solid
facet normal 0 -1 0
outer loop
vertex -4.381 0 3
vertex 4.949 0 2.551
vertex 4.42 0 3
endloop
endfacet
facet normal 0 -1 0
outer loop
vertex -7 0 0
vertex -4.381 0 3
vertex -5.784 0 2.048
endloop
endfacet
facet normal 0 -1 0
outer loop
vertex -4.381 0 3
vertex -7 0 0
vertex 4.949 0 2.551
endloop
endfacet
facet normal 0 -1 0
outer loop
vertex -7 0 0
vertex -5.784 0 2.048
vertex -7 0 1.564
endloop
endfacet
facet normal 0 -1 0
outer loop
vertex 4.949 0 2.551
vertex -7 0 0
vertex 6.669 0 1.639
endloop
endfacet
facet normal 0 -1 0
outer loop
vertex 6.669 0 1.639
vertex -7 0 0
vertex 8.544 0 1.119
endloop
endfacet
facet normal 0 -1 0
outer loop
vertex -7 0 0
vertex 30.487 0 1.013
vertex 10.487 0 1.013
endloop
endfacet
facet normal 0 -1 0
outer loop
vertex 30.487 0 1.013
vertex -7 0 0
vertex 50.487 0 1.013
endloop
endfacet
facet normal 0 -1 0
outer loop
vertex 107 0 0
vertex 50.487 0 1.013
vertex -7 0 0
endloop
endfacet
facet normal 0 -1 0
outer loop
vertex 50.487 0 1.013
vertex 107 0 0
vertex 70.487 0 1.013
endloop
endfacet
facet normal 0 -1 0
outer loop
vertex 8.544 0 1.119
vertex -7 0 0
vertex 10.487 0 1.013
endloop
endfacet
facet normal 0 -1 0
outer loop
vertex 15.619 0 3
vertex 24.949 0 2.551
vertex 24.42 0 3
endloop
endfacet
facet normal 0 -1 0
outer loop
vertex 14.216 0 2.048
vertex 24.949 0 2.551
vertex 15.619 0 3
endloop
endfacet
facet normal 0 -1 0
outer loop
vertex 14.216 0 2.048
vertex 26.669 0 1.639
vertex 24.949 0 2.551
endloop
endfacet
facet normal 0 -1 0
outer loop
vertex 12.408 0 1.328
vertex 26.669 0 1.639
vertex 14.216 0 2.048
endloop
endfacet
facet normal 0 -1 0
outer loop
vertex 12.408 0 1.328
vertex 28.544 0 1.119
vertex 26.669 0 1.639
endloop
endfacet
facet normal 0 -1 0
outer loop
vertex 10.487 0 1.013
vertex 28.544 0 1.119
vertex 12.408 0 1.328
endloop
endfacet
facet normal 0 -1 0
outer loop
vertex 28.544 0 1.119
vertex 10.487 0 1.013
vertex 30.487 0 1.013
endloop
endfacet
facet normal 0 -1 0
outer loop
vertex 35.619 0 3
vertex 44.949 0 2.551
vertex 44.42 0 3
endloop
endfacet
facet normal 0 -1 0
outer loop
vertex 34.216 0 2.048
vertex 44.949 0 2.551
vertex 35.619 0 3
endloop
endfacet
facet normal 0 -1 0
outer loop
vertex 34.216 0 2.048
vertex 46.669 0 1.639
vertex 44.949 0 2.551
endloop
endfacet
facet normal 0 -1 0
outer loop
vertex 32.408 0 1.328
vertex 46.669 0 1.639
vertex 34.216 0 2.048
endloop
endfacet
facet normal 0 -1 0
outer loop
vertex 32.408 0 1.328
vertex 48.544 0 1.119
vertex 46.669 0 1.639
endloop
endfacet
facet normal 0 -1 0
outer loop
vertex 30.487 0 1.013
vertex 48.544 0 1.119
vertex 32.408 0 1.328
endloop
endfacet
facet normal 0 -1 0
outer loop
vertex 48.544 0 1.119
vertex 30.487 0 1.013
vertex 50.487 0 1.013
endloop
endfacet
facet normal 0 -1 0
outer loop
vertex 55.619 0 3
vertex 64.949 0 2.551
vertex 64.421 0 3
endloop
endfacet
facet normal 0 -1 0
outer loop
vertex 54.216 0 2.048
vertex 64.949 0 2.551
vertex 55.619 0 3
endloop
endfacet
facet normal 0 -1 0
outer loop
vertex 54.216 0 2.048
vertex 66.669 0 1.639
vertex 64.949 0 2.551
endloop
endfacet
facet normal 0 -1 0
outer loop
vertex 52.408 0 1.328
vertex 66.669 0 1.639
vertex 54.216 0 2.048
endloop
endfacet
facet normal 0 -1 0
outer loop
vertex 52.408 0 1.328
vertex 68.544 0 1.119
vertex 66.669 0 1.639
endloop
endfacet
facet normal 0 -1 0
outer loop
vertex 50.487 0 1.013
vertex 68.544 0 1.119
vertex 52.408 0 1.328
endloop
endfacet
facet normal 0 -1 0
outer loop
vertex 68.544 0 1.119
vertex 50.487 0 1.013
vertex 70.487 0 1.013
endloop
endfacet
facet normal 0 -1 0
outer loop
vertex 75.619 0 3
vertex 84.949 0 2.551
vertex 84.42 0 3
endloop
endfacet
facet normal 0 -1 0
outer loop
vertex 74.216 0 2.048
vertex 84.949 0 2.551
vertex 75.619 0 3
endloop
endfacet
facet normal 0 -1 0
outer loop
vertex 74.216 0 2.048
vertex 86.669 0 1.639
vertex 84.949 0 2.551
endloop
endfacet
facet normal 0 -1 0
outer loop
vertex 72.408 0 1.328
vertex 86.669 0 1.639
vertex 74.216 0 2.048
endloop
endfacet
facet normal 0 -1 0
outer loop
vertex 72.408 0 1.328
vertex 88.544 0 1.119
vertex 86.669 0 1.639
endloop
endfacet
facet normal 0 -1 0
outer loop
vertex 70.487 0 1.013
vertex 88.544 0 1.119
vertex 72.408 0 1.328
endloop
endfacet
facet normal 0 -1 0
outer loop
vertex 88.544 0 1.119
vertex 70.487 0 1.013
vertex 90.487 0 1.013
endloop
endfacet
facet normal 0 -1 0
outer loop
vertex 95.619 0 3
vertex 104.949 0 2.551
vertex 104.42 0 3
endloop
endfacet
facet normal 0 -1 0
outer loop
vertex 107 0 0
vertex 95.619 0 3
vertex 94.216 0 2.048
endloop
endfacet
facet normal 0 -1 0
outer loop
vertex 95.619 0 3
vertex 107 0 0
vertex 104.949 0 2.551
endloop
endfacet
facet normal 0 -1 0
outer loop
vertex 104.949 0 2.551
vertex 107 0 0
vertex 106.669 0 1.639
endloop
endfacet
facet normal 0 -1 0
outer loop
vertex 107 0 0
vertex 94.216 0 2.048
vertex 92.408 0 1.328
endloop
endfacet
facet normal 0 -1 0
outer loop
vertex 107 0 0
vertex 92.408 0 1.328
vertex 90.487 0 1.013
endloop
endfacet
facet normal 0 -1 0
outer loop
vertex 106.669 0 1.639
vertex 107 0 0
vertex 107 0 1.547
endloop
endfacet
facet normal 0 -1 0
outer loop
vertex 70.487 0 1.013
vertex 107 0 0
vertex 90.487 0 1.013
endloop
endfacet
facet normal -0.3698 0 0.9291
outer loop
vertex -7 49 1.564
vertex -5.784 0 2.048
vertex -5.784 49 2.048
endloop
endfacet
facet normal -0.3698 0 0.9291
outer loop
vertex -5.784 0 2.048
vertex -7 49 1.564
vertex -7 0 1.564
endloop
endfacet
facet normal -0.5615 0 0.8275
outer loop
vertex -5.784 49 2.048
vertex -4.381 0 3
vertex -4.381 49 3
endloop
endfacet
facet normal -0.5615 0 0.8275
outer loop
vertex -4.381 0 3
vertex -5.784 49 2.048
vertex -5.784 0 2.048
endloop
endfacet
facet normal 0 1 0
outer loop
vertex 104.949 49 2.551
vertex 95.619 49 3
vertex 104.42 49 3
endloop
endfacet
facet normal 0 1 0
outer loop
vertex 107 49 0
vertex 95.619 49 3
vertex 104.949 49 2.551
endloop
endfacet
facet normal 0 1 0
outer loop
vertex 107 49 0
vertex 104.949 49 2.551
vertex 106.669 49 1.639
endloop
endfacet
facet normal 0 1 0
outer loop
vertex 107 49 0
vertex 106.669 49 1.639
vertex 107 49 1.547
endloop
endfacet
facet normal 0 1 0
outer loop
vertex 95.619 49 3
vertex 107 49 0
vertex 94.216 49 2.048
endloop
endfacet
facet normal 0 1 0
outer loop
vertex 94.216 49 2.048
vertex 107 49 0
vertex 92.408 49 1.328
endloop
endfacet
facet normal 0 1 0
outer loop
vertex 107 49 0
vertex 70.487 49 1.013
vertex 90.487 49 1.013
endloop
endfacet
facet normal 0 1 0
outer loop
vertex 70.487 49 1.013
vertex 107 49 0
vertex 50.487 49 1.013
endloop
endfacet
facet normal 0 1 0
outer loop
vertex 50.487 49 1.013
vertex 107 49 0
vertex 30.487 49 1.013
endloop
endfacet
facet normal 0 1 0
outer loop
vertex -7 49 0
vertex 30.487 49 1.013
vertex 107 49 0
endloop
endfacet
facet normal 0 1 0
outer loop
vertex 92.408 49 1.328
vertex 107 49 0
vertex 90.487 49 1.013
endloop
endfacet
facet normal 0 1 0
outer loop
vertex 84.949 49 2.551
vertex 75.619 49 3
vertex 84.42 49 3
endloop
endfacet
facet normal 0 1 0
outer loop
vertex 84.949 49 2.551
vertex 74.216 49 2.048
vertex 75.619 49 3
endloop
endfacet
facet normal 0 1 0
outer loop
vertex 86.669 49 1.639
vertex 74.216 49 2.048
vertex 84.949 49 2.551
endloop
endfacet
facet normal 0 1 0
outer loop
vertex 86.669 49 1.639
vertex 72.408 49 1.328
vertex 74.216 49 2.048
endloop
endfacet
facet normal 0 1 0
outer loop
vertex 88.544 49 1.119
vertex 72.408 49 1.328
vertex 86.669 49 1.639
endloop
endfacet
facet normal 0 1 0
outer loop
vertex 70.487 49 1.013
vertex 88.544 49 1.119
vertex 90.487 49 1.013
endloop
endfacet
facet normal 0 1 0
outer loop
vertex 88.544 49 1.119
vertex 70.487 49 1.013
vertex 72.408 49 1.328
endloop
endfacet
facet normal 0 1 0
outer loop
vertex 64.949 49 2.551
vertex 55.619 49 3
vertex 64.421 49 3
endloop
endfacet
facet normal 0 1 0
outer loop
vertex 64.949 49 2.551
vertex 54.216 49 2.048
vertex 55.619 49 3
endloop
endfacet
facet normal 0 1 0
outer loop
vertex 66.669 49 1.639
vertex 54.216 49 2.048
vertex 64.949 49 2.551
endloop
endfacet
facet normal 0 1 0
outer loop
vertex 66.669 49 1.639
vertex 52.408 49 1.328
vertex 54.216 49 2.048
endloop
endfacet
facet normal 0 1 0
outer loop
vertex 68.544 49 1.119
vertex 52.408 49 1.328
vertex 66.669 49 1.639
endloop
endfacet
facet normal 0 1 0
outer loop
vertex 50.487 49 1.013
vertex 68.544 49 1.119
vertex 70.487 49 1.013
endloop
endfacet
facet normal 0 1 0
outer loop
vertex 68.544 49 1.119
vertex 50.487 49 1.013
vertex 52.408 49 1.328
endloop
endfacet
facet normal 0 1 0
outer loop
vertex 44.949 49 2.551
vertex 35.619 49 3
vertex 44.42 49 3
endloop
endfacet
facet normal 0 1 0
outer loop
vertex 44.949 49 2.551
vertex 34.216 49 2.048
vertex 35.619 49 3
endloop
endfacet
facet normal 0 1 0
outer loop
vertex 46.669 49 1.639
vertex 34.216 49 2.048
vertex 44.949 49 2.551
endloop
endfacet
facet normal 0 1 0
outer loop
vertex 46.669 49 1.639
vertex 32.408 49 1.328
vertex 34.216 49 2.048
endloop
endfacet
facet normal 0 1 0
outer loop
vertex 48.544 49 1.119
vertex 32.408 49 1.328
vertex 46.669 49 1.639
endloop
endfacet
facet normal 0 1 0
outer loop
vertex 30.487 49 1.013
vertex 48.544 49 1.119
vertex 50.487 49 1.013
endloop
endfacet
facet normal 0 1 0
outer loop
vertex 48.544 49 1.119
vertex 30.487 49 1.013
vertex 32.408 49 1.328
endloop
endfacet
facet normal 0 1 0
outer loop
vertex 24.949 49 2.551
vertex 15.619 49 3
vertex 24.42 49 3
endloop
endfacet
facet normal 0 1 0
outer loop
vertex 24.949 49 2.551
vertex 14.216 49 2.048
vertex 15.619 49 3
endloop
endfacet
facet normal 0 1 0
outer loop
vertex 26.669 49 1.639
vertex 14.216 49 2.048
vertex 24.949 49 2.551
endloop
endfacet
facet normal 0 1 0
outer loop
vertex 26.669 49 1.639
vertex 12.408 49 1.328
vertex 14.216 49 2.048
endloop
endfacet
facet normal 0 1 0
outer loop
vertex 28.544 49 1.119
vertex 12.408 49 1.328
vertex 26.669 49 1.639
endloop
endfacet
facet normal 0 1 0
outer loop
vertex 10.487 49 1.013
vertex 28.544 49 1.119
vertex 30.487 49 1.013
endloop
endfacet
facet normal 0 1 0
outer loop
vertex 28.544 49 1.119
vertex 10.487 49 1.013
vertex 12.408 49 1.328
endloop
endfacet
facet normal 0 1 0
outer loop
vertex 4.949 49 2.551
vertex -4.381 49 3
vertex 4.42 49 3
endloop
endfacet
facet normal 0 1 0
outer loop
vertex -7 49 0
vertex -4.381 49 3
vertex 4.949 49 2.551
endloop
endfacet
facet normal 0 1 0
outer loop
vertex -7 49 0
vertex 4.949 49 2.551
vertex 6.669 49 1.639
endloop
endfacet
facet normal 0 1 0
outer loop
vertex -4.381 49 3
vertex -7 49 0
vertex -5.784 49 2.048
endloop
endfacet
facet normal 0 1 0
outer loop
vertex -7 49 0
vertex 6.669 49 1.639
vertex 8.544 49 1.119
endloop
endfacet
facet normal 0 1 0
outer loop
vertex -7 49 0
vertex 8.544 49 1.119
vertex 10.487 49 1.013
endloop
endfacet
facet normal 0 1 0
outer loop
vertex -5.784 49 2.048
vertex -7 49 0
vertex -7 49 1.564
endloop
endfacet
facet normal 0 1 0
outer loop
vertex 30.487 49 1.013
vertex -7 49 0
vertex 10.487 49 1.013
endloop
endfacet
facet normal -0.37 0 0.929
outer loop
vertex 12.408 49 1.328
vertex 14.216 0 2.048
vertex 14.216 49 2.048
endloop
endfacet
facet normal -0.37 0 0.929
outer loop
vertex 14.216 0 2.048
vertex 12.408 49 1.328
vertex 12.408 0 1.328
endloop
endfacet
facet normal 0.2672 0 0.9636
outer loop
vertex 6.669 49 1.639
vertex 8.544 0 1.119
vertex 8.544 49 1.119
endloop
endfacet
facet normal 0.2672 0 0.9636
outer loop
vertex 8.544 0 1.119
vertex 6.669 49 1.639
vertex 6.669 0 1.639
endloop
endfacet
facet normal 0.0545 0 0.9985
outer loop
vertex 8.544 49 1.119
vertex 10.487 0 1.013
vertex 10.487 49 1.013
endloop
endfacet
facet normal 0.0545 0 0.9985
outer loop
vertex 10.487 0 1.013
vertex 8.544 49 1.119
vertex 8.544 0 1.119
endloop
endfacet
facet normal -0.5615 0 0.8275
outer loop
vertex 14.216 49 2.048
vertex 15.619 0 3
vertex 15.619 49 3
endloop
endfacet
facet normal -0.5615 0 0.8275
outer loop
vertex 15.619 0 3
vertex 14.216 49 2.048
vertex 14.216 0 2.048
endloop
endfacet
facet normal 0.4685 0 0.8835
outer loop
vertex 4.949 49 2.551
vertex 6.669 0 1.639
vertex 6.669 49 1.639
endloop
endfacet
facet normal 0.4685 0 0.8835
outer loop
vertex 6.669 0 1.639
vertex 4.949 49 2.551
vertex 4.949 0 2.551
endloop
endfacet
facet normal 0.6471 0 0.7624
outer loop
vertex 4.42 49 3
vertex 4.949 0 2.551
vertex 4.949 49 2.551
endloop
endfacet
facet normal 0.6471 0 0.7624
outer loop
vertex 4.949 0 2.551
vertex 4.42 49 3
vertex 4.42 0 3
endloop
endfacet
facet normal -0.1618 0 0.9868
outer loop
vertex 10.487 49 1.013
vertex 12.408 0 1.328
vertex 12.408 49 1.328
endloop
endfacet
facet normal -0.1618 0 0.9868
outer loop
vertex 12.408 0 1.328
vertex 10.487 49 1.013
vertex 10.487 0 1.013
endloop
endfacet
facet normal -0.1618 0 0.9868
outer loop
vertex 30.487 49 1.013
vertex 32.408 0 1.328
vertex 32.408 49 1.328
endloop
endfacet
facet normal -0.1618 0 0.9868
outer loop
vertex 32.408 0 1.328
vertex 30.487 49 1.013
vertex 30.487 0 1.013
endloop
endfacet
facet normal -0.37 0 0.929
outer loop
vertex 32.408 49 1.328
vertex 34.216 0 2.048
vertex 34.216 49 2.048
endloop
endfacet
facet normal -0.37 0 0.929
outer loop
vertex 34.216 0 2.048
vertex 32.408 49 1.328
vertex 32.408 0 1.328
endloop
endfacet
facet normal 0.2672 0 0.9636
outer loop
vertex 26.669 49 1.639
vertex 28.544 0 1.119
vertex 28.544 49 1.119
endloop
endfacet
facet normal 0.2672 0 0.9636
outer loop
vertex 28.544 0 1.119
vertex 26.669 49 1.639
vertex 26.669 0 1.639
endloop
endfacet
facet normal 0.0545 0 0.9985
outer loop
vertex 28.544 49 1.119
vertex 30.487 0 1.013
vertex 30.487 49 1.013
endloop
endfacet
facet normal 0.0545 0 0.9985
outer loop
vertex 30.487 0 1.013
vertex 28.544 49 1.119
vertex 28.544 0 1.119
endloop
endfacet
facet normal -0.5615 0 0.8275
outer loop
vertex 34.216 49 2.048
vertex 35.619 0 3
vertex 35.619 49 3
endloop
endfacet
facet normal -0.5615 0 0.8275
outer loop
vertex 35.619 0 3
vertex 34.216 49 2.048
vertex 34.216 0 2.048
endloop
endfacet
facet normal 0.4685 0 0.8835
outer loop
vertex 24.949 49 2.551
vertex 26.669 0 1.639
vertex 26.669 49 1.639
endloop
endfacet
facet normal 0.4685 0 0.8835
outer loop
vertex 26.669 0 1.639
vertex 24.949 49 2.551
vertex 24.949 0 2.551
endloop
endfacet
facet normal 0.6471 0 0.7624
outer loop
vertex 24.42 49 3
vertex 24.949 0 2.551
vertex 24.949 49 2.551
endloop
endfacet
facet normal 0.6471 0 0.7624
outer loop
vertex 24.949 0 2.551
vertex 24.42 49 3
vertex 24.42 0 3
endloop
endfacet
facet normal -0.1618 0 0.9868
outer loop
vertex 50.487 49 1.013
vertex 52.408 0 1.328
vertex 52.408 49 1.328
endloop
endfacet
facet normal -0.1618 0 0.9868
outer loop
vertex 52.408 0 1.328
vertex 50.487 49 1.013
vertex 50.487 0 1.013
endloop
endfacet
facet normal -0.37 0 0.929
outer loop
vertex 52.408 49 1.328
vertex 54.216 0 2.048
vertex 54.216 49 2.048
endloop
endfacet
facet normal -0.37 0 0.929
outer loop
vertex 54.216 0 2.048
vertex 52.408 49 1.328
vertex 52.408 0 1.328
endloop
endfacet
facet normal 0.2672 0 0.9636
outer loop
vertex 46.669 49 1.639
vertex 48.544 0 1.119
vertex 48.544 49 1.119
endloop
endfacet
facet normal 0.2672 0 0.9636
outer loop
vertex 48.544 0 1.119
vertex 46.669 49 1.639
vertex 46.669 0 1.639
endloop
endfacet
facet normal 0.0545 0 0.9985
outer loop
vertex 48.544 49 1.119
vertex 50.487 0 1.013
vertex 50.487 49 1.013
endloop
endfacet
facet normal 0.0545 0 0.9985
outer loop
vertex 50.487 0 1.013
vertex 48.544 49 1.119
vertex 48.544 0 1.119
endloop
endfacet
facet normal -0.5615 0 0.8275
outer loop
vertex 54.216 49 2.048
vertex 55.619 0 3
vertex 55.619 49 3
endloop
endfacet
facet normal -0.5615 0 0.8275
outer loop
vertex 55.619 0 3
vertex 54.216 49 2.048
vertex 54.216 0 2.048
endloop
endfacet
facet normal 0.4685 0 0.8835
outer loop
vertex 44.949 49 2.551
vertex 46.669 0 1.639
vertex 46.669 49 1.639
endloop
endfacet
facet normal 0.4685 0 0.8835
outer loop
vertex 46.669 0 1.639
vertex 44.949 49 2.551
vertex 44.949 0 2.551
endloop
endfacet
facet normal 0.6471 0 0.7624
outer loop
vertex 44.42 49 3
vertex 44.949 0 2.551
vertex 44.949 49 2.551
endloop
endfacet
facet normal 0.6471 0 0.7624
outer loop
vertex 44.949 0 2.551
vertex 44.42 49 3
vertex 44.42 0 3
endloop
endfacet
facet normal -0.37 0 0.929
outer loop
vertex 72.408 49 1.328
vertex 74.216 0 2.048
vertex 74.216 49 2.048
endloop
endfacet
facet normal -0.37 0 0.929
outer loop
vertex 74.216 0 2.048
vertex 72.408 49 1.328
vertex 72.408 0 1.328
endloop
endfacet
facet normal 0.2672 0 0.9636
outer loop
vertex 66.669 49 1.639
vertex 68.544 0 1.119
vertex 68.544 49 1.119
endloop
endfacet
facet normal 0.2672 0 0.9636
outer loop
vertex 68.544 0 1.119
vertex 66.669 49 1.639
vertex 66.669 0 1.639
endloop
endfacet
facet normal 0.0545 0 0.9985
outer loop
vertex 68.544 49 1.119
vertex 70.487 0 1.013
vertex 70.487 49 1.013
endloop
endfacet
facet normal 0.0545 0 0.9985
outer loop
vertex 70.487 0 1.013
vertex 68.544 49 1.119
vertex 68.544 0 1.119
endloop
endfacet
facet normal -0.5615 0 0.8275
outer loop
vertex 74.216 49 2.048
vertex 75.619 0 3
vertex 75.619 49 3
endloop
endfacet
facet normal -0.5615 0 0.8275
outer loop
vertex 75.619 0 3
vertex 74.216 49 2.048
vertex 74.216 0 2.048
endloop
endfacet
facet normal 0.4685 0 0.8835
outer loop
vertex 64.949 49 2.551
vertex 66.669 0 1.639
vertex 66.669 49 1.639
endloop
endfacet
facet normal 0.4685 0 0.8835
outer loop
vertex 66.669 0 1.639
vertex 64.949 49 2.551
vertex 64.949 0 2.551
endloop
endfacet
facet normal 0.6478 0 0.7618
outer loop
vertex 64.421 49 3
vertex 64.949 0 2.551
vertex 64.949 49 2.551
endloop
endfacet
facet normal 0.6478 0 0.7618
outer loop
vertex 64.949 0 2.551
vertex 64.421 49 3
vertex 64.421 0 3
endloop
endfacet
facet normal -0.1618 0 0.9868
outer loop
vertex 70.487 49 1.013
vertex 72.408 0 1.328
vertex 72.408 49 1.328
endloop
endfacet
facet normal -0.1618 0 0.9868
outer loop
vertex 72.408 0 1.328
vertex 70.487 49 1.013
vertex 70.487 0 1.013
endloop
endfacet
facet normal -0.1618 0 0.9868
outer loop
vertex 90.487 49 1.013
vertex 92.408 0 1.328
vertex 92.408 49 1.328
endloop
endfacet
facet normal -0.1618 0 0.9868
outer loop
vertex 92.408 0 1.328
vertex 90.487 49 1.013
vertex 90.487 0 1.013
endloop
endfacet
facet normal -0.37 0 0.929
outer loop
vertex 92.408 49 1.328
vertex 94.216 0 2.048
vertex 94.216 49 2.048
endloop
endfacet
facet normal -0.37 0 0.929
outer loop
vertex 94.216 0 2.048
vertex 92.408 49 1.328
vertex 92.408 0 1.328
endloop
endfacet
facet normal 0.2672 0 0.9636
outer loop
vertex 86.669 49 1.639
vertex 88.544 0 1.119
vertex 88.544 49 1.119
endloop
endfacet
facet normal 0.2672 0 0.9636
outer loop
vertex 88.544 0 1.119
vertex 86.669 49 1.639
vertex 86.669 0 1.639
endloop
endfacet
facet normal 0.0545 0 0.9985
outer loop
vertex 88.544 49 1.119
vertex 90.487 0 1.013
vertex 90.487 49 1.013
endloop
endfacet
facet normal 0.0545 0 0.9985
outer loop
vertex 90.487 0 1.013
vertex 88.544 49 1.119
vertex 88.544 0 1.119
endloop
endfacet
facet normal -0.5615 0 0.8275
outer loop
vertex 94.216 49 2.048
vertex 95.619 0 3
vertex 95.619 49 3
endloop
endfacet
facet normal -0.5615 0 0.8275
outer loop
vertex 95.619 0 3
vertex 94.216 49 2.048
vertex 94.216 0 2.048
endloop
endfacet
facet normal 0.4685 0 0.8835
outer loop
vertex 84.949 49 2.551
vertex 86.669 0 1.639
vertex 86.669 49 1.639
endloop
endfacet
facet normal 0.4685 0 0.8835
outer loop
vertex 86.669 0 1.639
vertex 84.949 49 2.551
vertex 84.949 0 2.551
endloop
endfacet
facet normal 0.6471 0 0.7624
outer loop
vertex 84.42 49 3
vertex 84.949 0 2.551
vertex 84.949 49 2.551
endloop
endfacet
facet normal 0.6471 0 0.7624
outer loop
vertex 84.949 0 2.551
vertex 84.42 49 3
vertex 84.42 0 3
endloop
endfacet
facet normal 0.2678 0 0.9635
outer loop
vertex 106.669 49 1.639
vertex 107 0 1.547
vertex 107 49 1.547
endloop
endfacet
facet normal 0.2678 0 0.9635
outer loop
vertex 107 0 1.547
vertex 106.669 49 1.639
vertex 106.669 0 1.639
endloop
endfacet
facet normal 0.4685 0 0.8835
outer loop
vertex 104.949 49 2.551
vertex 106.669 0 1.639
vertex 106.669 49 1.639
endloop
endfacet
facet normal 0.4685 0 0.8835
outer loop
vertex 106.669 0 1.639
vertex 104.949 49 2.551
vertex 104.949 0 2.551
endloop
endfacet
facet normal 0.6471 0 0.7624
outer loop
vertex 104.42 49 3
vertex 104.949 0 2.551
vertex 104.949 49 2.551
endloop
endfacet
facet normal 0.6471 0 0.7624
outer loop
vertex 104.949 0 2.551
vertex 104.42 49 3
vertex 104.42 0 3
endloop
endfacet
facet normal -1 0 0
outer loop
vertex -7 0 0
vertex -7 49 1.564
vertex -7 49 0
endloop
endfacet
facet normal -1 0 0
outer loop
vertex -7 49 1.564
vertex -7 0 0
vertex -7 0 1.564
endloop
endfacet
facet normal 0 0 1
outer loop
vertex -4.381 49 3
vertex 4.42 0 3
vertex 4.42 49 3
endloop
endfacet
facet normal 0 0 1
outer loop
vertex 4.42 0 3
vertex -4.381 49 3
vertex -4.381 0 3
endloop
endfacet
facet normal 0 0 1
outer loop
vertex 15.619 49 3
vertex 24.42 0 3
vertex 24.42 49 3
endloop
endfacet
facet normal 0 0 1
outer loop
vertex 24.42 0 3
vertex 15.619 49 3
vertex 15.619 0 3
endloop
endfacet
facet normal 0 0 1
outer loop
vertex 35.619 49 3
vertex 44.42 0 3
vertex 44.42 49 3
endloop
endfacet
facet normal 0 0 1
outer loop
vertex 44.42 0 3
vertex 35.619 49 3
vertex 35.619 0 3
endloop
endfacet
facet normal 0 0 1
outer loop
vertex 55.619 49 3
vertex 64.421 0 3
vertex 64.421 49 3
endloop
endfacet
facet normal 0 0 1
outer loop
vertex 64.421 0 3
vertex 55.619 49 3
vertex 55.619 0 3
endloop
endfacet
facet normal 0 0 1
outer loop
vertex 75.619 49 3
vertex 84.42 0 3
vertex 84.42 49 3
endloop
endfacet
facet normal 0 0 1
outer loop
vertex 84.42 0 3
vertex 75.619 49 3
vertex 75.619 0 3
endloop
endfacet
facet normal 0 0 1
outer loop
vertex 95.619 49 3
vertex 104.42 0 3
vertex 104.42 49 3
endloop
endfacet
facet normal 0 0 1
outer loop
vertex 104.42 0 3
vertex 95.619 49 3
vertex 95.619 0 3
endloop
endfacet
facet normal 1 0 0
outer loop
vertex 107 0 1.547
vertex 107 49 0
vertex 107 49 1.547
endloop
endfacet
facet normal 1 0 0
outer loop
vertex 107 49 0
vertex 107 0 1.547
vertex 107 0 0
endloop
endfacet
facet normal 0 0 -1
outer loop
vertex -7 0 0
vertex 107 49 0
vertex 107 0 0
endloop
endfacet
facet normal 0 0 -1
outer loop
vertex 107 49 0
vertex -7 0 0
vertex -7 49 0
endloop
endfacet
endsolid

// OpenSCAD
celld=18;
d=1;
d2=5;
h=49;

n=5;

difference(){
   translate([-7,0,0])cube([n*20+14,h,3]);
    for(i=[-2:n+1]){
        translate([20*i+10,0,10])rotate([-90,0,0])cylinder(d=celld,h=h);
    }
}
